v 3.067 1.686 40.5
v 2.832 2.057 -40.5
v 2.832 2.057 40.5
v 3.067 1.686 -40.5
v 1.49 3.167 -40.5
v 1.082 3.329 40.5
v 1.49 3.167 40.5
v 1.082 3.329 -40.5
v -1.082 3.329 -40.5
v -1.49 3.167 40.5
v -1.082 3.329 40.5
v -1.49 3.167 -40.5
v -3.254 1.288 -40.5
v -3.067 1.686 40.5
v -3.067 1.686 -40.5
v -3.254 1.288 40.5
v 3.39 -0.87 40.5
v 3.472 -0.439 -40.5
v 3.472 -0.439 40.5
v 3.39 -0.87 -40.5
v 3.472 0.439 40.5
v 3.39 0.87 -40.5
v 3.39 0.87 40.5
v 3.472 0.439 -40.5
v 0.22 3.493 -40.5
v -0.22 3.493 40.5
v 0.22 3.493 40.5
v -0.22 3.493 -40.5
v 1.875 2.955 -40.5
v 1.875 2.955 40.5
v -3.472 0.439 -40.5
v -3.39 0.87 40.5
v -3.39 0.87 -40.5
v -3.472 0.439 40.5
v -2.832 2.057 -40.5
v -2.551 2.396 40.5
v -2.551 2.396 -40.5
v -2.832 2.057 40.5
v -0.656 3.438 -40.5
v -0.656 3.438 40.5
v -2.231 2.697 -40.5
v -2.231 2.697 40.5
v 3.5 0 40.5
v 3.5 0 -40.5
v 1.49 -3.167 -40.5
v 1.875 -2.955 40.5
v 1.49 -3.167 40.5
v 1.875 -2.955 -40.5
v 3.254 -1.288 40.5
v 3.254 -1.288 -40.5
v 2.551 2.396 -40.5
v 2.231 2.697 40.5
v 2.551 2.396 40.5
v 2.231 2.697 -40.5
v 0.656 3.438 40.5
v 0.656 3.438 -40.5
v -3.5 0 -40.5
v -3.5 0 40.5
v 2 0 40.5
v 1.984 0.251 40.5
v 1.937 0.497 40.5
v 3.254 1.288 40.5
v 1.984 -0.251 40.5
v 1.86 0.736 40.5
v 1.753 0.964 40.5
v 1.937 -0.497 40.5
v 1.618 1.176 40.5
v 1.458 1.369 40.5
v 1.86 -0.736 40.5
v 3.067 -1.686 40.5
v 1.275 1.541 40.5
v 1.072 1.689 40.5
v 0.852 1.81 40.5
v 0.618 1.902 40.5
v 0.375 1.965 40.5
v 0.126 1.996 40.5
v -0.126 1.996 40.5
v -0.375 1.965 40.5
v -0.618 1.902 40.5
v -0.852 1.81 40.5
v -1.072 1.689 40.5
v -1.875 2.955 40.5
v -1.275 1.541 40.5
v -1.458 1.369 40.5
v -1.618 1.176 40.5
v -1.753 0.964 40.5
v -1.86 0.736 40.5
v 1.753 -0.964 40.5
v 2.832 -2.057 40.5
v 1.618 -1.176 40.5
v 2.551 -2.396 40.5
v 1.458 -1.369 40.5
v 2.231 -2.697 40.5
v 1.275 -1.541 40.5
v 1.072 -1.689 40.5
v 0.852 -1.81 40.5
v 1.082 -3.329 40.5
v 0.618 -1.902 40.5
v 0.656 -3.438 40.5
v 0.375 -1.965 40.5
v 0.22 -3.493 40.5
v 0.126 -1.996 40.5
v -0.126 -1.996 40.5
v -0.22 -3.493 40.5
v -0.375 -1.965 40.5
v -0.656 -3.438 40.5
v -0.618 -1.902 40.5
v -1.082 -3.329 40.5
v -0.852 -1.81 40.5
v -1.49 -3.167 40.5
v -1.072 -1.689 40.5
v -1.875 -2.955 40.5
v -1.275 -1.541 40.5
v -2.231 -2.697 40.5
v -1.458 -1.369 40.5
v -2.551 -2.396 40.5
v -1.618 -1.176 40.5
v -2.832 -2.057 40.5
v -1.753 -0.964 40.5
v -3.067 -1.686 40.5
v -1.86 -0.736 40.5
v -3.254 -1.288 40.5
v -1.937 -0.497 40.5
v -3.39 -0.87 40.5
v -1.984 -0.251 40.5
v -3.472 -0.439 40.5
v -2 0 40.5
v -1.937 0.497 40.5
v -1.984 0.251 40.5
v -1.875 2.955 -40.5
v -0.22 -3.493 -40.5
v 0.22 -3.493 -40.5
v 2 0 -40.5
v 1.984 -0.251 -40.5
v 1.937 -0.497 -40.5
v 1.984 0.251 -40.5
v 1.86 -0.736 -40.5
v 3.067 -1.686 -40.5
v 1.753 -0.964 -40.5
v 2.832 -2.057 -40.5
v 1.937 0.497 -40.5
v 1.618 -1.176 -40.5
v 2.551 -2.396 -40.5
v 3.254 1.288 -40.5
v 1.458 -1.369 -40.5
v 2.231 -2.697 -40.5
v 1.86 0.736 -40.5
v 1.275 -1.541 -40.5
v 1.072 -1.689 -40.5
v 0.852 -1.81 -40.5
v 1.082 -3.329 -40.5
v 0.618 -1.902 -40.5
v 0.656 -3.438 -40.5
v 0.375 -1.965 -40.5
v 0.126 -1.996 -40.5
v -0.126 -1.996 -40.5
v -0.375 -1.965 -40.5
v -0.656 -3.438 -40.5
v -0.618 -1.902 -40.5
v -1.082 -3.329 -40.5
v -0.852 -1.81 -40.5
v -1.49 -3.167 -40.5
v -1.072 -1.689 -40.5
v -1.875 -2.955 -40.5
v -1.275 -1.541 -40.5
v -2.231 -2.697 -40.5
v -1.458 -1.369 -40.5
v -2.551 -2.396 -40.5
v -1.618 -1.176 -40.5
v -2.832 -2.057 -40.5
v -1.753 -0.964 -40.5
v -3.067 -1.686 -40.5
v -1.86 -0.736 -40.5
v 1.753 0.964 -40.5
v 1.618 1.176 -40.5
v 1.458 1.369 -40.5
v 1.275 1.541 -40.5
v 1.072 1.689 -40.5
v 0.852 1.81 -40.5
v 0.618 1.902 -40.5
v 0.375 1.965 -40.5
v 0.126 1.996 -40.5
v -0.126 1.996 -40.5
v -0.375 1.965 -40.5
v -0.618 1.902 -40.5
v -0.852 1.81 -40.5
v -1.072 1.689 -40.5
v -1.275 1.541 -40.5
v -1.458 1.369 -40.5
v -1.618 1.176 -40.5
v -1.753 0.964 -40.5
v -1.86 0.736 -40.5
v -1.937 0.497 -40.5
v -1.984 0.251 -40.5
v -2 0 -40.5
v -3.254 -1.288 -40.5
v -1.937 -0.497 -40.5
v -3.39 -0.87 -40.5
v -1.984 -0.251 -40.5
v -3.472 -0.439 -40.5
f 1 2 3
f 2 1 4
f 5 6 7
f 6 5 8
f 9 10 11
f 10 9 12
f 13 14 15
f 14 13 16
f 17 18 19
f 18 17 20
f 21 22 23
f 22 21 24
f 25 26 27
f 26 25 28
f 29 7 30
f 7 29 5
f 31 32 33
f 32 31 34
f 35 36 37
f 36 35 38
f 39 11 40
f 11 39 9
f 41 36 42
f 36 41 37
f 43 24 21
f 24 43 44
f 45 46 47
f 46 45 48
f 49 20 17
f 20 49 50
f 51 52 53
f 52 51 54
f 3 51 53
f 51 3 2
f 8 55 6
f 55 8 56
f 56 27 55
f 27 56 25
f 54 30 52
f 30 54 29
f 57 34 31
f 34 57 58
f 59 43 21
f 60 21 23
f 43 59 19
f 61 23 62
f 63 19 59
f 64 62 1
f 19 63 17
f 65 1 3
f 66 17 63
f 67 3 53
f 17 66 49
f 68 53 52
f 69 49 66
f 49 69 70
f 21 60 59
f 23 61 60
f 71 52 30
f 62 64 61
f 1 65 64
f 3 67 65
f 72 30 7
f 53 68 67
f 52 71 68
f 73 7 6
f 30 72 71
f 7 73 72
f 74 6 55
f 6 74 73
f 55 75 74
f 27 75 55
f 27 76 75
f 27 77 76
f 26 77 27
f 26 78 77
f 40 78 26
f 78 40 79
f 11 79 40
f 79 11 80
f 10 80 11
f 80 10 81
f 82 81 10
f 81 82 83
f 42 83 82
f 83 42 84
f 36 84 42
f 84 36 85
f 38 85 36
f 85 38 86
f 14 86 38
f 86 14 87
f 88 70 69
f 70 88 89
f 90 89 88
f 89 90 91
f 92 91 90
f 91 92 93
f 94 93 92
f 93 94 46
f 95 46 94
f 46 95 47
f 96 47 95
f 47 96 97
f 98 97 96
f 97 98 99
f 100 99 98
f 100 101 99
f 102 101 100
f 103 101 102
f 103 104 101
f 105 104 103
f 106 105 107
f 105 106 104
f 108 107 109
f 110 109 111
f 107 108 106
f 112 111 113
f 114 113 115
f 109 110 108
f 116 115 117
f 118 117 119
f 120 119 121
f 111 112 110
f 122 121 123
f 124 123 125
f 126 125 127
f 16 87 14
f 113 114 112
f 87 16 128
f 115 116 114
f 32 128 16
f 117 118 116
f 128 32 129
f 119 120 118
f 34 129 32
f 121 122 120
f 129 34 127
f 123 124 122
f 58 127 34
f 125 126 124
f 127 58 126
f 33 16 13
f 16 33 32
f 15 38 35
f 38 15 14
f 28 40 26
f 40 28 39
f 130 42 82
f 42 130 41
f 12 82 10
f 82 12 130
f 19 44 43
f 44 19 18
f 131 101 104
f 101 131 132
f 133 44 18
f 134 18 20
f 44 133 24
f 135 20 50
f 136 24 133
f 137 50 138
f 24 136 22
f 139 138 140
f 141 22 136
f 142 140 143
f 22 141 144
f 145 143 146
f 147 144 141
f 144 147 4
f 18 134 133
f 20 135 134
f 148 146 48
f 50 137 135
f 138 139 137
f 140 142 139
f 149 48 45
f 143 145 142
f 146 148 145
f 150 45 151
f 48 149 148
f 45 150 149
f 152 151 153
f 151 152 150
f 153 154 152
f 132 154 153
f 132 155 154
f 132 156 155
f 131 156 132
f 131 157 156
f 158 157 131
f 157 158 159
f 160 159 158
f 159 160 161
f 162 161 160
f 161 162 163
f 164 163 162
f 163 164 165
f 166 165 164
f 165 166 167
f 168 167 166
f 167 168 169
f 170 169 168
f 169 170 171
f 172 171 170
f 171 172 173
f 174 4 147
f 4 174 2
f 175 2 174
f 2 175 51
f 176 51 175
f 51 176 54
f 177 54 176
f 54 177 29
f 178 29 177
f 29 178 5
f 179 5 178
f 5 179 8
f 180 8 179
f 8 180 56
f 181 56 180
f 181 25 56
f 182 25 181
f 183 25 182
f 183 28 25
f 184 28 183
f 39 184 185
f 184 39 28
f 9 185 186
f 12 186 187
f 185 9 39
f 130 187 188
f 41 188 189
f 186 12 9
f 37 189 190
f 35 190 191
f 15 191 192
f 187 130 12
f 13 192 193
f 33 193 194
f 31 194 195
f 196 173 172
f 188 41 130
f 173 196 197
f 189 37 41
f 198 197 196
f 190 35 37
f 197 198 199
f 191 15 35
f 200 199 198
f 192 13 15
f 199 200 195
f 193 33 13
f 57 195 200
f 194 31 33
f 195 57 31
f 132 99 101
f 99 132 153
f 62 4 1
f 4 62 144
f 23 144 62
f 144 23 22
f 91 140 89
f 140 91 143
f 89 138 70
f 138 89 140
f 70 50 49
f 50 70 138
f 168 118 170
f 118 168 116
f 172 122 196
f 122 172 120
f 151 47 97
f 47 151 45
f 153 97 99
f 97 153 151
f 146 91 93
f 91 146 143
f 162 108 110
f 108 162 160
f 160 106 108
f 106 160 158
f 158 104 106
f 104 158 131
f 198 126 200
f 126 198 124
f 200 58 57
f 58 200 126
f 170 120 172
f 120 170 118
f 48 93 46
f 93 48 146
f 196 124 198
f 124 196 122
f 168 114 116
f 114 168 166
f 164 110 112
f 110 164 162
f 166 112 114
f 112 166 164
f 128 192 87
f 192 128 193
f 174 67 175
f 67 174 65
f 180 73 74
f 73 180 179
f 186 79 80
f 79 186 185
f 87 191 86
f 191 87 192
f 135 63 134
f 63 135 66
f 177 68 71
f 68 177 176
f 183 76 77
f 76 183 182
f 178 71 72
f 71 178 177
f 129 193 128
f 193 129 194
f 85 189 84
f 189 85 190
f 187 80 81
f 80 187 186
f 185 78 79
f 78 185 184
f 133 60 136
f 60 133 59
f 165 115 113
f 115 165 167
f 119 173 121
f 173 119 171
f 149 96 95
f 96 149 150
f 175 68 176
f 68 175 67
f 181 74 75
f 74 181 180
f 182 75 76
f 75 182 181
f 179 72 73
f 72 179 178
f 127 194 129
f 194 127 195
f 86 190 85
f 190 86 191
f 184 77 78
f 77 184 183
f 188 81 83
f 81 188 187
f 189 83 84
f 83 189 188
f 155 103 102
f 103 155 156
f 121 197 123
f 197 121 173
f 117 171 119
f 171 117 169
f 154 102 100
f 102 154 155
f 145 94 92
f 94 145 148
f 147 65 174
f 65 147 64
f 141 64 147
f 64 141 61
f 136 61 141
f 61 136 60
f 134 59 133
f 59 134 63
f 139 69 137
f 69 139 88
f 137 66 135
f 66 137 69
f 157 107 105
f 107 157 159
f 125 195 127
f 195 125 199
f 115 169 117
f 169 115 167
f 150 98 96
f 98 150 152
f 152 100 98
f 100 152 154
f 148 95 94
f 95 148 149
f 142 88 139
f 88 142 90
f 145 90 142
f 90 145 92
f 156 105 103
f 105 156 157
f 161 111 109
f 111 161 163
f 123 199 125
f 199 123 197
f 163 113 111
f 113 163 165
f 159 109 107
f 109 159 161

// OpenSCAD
$fn = 50;


difference() {
	union() {
		translate(v = [0, 0, -40.5000000000]) {
			cylinder(h = 81, r = 3.5000000000);
		}
	}
	union() {
		translate(v = [0, 0, -100.0000000000]) {
			cylinder(h = 200, r = 2);
		}
	}
}
